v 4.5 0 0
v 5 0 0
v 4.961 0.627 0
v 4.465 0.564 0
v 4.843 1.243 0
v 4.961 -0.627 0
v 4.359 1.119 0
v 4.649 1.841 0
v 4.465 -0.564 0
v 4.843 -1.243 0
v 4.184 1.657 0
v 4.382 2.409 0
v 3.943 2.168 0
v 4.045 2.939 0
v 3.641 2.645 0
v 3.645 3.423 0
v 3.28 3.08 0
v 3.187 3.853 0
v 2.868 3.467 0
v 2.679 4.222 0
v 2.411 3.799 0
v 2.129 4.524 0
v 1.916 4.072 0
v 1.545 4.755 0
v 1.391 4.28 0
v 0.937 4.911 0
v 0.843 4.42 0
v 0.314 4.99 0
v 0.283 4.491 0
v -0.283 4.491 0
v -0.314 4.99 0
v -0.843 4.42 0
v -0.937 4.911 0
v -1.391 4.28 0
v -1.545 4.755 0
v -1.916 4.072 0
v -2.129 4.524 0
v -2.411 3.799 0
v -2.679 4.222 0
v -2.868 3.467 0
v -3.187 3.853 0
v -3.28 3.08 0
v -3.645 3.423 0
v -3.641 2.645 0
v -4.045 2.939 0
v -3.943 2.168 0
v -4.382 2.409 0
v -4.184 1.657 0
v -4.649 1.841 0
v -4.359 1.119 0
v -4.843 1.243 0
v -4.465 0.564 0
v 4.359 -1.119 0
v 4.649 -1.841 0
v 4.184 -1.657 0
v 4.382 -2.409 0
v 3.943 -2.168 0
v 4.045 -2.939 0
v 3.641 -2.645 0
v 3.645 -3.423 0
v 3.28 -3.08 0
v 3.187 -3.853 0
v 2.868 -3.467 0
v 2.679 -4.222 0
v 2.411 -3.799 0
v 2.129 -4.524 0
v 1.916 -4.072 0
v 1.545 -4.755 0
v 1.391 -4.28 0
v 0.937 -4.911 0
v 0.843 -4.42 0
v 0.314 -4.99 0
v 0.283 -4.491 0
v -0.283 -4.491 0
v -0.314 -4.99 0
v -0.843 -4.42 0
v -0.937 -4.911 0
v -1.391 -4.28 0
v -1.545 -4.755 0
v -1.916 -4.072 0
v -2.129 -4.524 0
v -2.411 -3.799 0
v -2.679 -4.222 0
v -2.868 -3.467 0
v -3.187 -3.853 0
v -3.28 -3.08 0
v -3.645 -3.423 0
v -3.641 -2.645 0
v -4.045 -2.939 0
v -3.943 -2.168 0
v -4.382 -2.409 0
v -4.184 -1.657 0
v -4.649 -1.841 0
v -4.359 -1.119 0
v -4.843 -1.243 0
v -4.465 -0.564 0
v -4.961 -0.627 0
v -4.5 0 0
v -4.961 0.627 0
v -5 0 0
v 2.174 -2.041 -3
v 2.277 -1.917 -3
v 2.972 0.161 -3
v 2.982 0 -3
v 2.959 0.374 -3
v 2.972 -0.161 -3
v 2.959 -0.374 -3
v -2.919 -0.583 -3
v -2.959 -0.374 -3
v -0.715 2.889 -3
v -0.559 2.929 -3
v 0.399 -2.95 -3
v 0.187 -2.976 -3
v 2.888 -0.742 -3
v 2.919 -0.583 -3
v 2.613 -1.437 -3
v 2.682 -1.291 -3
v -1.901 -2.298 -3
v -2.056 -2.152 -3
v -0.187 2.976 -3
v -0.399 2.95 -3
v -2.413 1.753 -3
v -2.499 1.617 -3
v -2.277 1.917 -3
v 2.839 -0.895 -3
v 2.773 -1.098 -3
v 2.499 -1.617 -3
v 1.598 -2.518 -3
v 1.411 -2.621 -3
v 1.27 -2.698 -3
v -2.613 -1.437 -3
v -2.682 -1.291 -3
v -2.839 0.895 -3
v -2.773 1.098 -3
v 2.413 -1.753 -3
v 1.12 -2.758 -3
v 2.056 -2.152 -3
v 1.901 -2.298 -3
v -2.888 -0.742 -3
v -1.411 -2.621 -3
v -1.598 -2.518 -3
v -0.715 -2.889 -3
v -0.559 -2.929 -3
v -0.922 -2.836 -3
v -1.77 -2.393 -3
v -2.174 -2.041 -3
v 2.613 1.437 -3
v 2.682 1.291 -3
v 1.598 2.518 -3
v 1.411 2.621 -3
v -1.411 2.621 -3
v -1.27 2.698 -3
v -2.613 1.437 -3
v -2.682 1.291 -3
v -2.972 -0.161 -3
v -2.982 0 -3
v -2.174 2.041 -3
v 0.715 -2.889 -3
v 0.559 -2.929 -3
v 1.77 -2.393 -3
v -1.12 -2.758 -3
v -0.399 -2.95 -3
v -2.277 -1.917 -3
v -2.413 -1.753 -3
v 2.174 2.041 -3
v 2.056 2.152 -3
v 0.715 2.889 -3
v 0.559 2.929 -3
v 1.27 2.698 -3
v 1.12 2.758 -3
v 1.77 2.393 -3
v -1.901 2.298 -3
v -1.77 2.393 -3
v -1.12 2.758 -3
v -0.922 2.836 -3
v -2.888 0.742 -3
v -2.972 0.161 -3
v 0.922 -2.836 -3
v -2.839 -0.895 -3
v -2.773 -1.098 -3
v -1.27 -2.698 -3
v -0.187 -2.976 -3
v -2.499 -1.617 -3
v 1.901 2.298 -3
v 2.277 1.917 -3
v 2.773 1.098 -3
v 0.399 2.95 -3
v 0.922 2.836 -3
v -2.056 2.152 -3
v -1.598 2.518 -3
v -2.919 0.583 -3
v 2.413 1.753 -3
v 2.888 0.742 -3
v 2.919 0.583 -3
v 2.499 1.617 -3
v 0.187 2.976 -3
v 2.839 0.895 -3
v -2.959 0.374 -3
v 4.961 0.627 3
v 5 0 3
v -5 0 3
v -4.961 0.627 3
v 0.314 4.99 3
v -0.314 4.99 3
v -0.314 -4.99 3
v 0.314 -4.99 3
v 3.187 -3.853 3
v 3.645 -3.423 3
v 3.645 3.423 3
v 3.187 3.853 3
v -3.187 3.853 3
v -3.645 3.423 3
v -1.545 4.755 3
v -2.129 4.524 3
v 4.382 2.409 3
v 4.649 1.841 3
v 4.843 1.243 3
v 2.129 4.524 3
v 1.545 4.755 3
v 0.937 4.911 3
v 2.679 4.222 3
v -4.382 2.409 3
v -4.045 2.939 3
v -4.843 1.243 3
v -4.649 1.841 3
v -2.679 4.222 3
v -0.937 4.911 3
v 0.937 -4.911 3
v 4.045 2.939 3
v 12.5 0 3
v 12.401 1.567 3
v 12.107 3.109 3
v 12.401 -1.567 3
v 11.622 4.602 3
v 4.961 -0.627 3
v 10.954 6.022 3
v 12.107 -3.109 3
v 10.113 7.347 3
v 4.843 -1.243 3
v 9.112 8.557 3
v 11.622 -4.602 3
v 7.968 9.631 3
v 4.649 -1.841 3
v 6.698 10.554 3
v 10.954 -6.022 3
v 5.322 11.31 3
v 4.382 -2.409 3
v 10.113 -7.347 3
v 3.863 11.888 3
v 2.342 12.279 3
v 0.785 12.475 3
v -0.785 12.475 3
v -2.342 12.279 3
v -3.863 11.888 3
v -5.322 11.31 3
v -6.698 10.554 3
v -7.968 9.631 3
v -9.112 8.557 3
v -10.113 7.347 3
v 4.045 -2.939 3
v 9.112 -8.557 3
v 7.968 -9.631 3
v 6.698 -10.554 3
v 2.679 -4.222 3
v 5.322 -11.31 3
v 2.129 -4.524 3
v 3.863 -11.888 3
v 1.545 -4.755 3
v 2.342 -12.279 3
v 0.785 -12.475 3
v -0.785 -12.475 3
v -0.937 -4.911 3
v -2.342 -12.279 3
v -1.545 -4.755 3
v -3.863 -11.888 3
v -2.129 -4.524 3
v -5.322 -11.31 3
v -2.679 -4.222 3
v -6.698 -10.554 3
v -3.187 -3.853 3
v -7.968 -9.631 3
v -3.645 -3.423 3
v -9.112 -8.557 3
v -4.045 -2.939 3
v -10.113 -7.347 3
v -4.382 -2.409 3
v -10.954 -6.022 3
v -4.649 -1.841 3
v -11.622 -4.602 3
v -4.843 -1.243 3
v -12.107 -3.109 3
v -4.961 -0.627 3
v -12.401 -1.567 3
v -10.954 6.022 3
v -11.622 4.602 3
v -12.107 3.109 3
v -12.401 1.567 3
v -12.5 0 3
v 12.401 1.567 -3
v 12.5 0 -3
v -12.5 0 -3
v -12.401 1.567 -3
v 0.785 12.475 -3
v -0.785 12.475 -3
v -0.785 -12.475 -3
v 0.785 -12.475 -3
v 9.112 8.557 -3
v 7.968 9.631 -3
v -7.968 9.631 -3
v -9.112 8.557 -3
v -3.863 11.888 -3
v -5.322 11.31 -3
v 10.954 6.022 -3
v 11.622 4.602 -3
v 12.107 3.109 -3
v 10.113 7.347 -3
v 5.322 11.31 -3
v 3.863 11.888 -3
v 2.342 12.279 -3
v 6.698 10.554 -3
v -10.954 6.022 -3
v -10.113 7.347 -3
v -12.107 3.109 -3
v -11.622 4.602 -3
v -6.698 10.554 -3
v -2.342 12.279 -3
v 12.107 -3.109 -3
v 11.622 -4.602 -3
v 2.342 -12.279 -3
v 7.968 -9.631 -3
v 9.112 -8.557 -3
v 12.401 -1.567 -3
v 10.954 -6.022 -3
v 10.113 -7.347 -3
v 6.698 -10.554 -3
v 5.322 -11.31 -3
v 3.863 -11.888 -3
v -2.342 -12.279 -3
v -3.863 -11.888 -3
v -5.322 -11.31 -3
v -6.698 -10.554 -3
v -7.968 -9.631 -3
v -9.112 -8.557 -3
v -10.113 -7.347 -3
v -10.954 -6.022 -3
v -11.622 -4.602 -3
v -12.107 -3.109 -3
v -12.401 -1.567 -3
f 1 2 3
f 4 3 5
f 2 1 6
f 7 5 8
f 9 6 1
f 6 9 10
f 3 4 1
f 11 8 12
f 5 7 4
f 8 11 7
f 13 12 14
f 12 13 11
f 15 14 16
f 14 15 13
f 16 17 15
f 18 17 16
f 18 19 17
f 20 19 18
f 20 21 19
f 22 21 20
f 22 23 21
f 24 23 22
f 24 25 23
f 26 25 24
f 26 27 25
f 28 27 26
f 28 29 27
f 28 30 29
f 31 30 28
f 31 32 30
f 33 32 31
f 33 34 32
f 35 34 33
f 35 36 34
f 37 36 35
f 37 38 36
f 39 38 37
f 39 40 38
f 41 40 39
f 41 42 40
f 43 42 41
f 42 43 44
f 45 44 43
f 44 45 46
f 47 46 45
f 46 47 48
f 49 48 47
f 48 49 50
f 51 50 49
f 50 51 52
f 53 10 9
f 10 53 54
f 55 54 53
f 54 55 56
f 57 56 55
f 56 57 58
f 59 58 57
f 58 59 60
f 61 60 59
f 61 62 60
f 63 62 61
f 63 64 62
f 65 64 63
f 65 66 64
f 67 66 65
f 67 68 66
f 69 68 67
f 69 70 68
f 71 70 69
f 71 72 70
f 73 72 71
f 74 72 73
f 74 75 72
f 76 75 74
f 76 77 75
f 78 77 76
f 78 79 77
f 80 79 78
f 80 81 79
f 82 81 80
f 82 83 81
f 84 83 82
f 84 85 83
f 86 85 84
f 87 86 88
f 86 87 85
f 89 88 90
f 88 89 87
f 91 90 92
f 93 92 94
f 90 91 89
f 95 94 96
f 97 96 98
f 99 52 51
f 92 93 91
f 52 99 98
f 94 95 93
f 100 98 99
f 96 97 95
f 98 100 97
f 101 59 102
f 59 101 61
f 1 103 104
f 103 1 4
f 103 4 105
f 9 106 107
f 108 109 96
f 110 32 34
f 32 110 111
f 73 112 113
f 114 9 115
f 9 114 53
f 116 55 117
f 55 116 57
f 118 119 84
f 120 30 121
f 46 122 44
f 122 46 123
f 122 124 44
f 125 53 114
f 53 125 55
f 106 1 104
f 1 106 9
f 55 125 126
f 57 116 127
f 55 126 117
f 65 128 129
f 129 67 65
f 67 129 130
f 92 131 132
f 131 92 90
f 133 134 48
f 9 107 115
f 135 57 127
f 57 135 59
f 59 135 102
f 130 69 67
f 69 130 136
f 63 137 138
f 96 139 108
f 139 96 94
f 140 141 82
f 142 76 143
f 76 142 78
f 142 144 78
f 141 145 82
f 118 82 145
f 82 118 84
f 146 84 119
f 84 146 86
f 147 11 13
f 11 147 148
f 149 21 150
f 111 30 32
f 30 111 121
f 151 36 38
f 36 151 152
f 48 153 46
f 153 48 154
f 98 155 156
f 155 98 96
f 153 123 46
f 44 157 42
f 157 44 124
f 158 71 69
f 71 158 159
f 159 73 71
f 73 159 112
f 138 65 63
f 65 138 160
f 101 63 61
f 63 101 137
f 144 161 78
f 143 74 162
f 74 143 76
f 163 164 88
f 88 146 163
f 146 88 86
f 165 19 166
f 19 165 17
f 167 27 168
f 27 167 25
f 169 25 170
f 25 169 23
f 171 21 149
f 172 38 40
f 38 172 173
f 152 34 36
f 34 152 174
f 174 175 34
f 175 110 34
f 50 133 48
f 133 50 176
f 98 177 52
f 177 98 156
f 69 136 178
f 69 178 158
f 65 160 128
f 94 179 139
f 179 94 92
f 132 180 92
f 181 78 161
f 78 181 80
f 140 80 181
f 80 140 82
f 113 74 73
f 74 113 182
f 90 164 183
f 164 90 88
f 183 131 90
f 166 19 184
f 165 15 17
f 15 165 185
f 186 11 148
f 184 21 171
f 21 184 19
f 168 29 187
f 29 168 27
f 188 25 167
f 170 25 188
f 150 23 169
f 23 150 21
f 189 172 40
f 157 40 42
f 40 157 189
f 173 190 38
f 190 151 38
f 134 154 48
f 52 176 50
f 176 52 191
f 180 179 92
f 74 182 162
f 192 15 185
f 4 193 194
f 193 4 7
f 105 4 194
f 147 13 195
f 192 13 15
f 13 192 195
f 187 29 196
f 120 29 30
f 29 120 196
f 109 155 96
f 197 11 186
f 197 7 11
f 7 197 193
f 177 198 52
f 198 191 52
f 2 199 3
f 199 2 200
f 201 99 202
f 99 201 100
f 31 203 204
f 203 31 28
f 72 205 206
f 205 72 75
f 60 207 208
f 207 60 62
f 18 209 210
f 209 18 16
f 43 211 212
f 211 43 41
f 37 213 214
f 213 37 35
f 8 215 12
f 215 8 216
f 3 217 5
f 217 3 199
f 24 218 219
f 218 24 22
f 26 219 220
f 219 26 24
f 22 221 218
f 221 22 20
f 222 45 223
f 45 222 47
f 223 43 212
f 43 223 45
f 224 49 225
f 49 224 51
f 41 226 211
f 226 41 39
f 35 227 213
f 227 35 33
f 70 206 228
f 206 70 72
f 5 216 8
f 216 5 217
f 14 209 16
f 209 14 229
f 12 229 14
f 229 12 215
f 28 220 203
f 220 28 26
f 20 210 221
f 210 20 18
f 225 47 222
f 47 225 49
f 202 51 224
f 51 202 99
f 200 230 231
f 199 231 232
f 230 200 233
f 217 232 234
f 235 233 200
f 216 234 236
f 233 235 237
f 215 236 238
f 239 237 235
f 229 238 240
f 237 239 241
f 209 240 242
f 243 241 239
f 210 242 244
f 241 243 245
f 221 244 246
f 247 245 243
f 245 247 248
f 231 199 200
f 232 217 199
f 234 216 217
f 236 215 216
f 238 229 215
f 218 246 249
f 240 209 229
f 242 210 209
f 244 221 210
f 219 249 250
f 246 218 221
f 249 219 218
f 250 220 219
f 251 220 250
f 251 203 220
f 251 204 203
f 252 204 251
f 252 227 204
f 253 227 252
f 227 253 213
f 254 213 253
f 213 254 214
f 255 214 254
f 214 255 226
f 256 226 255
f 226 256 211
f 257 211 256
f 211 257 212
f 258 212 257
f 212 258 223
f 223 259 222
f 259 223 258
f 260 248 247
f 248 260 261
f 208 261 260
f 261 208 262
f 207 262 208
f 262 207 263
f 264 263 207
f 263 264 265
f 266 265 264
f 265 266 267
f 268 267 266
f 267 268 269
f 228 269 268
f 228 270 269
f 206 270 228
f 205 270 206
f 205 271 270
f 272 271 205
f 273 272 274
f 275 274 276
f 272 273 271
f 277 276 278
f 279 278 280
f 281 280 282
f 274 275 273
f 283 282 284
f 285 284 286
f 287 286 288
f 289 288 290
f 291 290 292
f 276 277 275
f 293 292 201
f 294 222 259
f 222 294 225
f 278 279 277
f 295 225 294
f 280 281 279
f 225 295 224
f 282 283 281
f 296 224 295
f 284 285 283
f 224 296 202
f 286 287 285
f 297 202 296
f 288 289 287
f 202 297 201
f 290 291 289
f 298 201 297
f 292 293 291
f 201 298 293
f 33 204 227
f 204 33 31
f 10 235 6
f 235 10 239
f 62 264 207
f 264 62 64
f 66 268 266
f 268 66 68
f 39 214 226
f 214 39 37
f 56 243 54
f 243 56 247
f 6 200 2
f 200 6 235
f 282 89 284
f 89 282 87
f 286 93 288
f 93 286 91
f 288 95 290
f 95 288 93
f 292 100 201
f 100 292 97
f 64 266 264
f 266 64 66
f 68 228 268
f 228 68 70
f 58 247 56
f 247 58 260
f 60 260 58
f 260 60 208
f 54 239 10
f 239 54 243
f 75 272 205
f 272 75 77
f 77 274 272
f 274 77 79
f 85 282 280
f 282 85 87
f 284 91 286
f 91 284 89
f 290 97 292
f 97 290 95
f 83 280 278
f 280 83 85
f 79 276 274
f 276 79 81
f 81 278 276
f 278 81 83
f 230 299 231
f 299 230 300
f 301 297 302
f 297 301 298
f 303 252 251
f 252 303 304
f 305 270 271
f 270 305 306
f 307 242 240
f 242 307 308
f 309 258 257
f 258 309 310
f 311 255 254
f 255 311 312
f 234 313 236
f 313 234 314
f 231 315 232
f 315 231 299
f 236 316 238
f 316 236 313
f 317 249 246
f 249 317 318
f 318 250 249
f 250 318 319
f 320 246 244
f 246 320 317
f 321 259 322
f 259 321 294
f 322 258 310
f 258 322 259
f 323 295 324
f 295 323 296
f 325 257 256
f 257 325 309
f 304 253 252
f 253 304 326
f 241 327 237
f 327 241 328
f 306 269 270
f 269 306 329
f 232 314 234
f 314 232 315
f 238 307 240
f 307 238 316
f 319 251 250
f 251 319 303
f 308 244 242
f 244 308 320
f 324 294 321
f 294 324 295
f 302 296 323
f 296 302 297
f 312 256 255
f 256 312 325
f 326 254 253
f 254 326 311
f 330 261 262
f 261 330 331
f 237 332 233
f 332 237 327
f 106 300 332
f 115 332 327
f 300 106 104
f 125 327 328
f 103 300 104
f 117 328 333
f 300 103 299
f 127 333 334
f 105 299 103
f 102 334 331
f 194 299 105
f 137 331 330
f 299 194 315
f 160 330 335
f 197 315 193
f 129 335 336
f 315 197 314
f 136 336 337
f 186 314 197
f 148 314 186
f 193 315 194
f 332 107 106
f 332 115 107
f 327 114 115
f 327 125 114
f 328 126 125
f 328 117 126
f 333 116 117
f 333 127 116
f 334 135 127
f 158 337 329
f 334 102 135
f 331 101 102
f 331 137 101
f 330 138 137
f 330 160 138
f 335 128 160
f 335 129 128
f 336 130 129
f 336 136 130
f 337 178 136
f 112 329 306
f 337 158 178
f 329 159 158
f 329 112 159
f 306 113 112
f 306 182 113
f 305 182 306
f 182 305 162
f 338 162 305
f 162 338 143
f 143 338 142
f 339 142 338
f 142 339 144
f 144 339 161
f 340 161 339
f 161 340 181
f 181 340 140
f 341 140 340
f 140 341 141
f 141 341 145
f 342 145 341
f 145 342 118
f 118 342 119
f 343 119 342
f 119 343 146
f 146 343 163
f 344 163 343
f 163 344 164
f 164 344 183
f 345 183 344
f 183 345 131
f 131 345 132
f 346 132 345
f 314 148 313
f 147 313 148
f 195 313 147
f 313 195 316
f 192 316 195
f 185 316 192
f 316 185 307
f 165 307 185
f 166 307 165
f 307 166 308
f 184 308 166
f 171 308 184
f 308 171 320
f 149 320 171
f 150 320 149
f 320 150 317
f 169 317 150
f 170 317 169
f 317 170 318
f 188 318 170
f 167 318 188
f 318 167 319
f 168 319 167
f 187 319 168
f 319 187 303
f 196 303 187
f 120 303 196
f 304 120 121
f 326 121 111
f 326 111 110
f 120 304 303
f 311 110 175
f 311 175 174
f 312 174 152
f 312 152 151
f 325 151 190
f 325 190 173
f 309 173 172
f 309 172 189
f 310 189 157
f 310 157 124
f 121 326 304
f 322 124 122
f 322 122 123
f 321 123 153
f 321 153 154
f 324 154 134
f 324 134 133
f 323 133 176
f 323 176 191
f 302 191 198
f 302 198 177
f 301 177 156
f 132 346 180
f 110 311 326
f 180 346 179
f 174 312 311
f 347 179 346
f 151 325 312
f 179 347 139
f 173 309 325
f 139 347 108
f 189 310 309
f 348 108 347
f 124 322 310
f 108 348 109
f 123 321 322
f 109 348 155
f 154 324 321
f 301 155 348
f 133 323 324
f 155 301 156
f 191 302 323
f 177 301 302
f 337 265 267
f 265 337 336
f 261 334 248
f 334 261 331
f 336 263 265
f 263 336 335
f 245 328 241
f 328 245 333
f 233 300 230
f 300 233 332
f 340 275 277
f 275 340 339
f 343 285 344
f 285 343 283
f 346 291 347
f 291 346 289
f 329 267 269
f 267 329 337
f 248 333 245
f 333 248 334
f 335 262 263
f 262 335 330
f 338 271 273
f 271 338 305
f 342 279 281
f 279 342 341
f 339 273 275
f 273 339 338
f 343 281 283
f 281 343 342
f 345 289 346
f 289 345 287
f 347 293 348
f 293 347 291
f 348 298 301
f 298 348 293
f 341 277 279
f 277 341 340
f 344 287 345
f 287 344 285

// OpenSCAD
$fn = 50;

difference() {
	union() {
		translate(v = [0, 0, -3.0]) {
			cylinder(h = 6, r = 12.5);
		}
	}
	union() {
		translate(v = [0, 0, 0]) {
			rotate(a = [0, 0, 0]) {
				difference() {
					union() {
						translate(v = [0, 0, -6.0]) {
							cylinder(h = 6, r = 2.25);
						}
						translate(v = [0, 0, -4.2]) {
							cylinder(h = 4.2, r1 = 2.375, r2 = 4.5);
						}
						translate(v = [0, 0, -6.0]) {
							cylinder(h = 6, r = 2.375);
						}
						translate(v = [0, 0, -6.0]) {
							cylinder(h = 6, r = 2.25);
						}
					}
					union();
				}
			}
		}
		#cylinder(h = 3, r = 5.0);
	}
}
